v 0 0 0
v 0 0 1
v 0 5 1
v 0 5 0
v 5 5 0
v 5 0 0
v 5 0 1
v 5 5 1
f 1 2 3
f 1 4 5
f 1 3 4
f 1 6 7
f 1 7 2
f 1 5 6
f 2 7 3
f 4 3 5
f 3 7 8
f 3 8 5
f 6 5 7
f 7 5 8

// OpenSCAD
/* Warning, this is a very basic generator with a lot of approximation 
input data : [VQFN, M4C, 5x5x1mm, 32, , A, C04-25401A]
generated by com.zoubworld.electronics.cad.model3d.Basic
Date : Sun Feb 15 10:50:49 CET 2026
*/

//body
color("black")
translate([0,0,0])
cube([5.0,5.0,1.0], center=false);
